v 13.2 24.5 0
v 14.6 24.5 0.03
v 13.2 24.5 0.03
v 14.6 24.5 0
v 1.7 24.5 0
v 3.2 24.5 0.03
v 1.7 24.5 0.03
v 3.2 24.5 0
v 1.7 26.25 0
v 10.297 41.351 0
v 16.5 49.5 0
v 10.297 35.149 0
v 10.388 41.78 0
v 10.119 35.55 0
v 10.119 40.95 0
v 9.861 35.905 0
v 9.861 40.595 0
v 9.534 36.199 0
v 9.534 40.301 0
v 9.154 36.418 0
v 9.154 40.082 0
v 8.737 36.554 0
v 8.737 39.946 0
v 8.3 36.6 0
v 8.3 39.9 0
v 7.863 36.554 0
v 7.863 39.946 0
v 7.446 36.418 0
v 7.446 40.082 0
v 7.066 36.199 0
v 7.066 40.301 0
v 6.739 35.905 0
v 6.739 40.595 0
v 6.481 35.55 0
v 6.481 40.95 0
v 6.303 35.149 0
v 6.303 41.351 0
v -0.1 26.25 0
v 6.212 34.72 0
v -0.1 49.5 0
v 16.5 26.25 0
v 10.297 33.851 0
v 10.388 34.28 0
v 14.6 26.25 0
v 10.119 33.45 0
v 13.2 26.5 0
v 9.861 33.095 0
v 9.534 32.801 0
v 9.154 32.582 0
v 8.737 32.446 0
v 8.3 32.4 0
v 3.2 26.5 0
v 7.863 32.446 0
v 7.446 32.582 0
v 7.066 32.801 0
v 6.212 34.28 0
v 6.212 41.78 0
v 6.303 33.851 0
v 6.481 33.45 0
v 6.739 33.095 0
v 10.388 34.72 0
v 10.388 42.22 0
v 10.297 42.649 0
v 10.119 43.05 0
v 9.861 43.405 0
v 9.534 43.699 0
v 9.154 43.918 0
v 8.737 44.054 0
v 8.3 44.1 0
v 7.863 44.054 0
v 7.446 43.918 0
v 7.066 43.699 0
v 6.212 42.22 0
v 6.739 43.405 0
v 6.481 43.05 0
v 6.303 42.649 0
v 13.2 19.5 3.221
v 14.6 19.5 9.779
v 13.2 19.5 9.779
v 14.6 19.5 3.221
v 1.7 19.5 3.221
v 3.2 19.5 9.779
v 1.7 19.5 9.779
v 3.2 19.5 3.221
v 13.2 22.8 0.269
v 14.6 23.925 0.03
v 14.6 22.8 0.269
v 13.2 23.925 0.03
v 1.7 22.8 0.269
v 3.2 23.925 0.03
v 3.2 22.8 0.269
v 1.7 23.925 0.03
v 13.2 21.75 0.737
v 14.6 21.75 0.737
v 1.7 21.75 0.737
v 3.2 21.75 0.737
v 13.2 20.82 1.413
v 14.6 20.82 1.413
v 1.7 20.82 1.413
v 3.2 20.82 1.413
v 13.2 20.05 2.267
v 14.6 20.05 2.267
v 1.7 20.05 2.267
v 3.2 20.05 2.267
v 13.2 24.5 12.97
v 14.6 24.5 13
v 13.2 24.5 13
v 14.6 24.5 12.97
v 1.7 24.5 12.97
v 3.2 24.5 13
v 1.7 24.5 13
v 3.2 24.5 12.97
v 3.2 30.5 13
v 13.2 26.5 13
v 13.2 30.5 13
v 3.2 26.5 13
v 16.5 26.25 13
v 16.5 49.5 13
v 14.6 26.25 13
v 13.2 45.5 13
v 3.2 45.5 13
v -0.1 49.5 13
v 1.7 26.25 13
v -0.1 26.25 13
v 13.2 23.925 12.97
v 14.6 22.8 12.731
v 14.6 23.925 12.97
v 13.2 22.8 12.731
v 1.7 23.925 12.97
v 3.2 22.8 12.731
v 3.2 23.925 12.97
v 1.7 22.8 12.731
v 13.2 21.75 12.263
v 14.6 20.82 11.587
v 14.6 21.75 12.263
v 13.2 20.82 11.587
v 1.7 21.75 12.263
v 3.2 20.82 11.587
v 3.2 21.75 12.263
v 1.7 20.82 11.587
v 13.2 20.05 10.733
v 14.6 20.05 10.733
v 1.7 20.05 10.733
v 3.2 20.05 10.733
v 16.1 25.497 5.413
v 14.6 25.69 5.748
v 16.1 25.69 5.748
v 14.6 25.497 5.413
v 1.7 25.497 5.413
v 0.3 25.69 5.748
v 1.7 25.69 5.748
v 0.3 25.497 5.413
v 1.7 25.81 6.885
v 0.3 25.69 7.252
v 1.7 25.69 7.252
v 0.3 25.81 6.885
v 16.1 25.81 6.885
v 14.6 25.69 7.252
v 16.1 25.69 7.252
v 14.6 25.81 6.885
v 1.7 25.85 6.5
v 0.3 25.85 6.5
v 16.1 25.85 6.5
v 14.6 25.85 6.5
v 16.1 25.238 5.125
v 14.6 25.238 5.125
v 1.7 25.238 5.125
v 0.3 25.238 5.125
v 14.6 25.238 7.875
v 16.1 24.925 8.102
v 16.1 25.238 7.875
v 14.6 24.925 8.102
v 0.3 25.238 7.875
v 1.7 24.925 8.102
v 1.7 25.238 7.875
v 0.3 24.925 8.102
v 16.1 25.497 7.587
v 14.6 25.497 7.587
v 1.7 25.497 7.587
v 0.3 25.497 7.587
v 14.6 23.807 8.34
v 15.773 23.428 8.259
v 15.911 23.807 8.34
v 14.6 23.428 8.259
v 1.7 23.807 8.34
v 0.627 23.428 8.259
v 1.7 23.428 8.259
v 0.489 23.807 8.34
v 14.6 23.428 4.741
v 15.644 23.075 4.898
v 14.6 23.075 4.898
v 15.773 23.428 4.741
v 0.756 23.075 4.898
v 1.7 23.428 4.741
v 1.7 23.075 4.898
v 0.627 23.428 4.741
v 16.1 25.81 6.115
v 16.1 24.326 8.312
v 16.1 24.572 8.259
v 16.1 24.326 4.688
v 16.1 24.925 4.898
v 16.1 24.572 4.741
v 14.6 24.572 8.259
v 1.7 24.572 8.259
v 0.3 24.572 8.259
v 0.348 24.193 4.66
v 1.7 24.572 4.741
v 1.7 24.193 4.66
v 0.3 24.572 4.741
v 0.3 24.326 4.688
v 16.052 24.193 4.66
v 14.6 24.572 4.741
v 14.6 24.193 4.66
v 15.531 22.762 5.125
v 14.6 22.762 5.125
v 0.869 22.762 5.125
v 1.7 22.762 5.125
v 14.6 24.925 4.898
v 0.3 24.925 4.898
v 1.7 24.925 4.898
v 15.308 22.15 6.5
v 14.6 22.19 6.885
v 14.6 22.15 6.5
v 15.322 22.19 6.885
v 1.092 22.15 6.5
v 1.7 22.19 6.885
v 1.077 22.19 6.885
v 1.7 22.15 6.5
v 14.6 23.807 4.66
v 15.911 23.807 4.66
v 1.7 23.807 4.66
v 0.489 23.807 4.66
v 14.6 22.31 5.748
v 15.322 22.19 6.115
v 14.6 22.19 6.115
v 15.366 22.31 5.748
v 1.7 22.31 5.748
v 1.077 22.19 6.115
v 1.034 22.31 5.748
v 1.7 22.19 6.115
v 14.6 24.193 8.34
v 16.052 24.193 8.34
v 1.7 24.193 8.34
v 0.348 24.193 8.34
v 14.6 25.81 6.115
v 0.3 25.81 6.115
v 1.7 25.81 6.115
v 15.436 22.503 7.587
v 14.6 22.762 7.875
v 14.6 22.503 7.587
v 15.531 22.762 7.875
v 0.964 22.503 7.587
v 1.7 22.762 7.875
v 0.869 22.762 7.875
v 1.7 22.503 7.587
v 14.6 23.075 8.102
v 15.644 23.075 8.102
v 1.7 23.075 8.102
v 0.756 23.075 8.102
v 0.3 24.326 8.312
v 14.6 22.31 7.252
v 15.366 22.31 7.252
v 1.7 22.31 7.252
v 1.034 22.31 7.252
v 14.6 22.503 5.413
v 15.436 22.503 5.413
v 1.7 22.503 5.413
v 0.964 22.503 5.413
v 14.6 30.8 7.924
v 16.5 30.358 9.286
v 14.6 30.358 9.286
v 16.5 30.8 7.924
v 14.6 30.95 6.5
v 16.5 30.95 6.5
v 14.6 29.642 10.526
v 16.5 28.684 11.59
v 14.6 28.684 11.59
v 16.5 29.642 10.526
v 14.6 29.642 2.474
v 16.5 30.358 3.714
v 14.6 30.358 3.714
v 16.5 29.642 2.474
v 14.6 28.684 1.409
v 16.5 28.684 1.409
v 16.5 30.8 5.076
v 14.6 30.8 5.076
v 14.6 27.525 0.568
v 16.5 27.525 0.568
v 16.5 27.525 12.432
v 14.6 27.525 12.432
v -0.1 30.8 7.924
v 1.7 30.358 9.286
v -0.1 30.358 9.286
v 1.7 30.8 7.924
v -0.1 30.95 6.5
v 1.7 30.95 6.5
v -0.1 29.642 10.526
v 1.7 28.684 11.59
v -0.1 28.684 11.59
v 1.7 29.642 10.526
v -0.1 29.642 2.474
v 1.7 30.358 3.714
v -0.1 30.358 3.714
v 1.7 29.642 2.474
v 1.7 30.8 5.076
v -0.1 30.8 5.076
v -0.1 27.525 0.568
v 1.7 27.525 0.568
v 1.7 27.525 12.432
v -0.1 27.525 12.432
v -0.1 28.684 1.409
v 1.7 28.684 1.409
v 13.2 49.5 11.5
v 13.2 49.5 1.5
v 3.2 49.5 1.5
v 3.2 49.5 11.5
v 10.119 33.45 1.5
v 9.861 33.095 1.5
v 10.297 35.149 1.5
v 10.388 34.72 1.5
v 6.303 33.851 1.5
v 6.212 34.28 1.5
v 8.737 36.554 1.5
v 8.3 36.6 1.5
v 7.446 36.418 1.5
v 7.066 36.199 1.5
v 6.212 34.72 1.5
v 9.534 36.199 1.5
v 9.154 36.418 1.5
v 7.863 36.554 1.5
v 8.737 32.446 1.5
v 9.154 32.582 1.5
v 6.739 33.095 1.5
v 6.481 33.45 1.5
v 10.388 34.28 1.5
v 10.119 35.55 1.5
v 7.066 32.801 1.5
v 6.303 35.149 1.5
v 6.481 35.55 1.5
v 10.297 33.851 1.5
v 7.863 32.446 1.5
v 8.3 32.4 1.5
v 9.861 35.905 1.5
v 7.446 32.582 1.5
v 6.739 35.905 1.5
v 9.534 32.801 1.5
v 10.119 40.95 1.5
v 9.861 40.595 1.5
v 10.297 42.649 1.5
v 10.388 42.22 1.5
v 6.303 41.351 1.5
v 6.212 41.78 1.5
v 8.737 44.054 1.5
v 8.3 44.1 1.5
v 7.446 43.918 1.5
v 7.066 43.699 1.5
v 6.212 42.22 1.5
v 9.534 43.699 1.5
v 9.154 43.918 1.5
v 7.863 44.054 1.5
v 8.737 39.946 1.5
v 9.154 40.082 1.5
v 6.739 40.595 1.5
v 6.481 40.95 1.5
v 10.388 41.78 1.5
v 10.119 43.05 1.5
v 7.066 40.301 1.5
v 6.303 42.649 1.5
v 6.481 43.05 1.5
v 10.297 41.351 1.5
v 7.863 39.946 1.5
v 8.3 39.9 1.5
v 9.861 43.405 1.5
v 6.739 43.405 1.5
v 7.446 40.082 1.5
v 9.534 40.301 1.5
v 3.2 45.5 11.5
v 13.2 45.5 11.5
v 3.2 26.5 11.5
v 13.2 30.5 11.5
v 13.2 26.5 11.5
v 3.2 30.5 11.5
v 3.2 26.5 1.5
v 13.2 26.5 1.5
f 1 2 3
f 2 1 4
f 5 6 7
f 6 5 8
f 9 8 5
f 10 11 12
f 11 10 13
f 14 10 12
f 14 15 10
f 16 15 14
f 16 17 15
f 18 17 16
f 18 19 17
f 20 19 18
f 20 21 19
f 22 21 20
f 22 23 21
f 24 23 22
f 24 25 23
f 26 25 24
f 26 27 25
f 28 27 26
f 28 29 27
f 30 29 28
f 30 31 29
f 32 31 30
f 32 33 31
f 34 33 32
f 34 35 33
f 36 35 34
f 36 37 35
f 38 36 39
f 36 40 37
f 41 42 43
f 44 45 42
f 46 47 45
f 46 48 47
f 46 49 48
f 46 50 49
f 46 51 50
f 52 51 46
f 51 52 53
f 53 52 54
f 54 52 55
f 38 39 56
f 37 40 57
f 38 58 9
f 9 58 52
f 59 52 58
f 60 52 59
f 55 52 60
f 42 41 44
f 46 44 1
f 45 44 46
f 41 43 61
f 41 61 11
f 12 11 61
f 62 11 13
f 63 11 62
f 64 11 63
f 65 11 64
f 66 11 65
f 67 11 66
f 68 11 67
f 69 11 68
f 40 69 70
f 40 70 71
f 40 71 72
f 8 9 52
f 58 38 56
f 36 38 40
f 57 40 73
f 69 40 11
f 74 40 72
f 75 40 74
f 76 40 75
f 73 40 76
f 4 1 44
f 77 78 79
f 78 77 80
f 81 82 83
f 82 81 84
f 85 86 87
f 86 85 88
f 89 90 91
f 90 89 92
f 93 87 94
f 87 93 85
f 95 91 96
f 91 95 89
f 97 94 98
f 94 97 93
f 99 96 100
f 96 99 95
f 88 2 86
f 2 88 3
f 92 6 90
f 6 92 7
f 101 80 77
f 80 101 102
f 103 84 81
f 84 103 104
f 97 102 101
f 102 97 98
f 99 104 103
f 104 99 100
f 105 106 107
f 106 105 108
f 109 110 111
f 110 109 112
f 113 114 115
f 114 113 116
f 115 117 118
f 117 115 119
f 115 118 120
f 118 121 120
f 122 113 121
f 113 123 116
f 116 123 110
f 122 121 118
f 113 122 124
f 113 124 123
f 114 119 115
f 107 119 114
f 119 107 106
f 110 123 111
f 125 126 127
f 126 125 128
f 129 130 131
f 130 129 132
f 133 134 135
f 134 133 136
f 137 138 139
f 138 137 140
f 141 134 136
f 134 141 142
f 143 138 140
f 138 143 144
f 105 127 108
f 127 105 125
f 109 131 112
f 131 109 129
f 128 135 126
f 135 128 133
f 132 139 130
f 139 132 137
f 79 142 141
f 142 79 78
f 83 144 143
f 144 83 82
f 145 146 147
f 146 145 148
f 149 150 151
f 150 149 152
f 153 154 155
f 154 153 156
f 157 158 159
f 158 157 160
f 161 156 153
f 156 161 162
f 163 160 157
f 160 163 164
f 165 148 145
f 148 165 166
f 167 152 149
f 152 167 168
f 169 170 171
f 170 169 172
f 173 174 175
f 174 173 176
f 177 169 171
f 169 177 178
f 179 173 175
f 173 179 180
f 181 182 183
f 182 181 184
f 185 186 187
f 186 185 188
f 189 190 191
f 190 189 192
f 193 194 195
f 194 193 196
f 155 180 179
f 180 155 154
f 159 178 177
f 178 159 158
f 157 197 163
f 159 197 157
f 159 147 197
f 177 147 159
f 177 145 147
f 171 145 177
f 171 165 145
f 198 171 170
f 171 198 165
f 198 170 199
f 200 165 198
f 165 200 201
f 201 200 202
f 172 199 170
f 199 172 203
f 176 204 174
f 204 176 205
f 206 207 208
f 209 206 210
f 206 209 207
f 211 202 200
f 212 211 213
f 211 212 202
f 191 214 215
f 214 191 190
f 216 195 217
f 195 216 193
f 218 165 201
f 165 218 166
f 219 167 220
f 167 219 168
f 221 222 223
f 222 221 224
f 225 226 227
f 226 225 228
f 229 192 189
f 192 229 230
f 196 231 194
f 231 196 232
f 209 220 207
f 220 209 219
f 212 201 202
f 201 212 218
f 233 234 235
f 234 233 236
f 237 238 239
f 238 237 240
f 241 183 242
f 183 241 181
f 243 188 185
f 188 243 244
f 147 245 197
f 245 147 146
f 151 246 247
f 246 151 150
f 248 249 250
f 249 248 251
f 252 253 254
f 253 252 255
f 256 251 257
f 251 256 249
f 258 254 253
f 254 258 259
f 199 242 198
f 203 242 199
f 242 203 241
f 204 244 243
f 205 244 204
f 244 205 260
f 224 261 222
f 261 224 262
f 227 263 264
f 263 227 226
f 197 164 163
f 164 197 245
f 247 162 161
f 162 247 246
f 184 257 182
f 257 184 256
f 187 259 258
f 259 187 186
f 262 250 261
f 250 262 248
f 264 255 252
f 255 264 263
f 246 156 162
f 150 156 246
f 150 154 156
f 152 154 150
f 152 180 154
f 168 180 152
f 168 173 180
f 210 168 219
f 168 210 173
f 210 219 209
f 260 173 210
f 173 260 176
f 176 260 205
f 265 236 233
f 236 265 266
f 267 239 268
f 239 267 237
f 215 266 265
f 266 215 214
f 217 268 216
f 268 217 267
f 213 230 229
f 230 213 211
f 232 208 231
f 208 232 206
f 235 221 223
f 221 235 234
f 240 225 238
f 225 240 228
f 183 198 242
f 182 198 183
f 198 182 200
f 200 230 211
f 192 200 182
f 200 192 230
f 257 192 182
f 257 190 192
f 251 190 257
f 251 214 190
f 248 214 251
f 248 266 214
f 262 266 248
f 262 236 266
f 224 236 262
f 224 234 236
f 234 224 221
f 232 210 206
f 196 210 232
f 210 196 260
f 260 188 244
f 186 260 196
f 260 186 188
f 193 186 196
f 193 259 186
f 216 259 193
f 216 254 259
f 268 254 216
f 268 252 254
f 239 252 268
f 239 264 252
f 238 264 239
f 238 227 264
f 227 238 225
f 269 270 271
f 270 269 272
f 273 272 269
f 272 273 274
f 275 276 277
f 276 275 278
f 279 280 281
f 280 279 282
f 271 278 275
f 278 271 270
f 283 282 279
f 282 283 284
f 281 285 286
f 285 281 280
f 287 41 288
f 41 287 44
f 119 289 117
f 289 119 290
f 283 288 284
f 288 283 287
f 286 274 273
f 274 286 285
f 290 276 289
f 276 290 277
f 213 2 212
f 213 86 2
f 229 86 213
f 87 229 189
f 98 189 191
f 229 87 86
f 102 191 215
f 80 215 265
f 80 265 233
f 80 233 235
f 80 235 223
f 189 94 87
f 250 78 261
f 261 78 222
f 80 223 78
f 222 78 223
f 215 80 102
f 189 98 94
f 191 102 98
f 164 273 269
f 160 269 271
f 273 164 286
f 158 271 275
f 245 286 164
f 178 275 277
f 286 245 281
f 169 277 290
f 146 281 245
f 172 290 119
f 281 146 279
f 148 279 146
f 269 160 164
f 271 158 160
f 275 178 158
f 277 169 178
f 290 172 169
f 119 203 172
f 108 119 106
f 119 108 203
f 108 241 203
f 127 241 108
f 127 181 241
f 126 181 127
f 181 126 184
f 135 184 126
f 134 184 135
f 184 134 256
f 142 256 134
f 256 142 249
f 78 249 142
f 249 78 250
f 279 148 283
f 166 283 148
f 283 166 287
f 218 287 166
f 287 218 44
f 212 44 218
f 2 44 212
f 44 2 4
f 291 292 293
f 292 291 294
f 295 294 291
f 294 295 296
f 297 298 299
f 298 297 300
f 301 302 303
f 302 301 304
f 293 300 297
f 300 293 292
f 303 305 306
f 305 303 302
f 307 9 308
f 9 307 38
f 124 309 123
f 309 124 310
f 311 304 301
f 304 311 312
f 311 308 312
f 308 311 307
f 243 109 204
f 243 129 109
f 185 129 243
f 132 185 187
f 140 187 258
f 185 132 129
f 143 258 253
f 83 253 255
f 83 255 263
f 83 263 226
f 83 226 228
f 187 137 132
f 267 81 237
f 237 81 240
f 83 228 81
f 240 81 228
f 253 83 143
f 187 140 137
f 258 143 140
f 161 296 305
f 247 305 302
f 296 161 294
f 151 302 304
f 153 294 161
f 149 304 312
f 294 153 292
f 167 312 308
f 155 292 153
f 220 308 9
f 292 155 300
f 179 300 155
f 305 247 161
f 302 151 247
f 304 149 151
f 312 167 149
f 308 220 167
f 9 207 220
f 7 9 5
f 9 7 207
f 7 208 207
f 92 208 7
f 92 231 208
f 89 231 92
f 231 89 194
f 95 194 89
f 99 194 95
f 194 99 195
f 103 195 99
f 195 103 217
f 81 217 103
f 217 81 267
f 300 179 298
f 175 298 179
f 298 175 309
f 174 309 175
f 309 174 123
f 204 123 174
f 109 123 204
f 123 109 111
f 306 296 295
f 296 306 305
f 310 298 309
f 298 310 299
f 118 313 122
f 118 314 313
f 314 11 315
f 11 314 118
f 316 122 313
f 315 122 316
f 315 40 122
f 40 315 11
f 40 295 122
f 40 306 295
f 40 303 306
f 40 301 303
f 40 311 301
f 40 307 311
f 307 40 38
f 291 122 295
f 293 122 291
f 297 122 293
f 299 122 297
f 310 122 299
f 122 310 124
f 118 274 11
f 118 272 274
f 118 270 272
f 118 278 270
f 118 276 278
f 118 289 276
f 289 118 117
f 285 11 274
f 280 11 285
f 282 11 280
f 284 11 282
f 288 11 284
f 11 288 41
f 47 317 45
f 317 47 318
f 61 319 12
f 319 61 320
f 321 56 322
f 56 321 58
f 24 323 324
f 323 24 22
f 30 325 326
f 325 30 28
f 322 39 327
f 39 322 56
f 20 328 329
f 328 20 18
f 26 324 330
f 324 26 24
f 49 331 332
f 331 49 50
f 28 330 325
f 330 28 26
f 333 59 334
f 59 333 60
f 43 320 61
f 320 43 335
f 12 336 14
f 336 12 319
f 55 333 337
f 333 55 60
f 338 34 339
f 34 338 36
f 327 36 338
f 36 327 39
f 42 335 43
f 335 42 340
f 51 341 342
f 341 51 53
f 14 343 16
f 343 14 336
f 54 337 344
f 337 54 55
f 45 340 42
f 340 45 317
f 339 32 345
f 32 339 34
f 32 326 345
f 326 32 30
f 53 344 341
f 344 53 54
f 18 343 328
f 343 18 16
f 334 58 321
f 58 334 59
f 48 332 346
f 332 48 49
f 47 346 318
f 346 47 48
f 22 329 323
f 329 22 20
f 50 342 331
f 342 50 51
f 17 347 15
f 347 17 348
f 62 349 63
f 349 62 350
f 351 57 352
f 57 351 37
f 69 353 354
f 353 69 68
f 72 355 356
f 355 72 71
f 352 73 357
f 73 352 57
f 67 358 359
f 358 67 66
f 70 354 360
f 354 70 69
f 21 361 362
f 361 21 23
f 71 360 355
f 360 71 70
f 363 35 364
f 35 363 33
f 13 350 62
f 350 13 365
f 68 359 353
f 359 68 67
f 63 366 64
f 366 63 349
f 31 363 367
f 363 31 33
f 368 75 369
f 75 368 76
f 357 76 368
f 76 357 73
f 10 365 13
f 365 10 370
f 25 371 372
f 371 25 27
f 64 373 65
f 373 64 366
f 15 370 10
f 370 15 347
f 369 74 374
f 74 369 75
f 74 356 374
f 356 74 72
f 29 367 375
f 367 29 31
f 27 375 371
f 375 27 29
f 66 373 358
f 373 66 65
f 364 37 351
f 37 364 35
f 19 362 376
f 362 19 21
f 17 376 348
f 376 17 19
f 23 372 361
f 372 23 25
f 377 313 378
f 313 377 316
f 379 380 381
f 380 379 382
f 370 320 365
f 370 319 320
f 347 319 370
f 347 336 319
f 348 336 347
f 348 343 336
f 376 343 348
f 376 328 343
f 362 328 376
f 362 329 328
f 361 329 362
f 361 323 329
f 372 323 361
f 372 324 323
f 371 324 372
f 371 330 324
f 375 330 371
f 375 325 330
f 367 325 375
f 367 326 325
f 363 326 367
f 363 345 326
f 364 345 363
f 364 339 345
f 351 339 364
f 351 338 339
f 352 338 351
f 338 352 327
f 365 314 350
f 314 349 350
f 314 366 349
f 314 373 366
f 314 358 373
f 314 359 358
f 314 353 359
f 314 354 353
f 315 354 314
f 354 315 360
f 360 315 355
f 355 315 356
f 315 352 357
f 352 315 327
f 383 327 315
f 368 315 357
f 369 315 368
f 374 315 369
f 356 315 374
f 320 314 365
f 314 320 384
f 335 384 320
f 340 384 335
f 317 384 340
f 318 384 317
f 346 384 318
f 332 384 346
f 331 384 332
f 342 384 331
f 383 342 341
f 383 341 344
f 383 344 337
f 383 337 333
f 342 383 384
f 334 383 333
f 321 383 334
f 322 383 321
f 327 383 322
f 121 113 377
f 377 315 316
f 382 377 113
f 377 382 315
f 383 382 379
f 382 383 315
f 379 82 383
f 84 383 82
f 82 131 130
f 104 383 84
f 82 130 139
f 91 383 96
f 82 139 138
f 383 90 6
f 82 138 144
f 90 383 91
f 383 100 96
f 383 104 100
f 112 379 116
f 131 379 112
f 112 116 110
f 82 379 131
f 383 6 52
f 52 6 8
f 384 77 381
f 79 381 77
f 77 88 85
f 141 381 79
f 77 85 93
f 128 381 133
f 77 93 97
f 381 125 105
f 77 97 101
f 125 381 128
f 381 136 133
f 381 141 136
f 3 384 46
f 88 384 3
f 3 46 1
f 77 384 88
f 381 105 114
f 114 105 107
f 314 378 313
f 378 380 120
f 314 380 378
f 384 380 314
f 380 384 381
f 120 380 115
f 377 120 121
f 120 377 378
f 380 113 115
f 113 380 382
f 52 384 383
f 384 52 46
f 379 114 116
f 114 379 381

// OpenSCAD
//
// PARAMETRIC Cable Chain v0.5
// Zerginator 10/2015
//



use <text_on.scad>

$fn = 30;

ChainDef = [[1,0]];
//ChainDef = [[1,0],[1,0],[1,0],[1,0],[1,0],[1,0],[1,0],[1,0],[1,0],[1,0],[1,30],[1,30],[1,30],[1,30],[1,30],[1,30],[1,0],[1,0],[1,0],[1,0],[1,0],[1,0],[1,0]];


// ===============================================================================
// Type
Type        =       2;         // 1: +45° Bewegbar, 2: +-45°
Round       =       1;         // Runder oder eckiger Typ

// ===============================================================================
// box parameters
width       =       16.6;       // width of the chainlink (Standard: 16.6)
height      =       13;         // height of the chainlink (Standard: 13)
length      =       30;         // length of the chainlink  (Standard: 25, min 30 für Eckig)


// ===============================================================================
// === OUTPUT


// ===Check Consistency of Values
if((!Type && !Start && !End) || ((Round != 1) && (length/height<2.2)))
{
    // === IDIOT BOX (if imposible values were selected)
    cube([30,30,30]);
    color("red")
    text_on_cube("Doh!!", locn_vec=[15,15,15], cube_size=30, face="top", size=5, center=true); 
    color("red")
    text_on_cube("Error!!", locn_vec=[15,15,15], cube_size=30, face="front", size=5, center=true);   
    color("red")
    text_on_cube("Fehler!!", locn_vec=[15,15,15], cube_size=30, face="right", size=4, center=true);   
    color("red")
    text_on_cube("Défaut!!", locn_vec=[15,15,15], cube_size=30, face="left", size=4, center=true);   
    color("red")
    text_on_cube("ошибка!!", locn_vec=[15,15,15], cube_size=30, face="back", size=4, center=true); 
    color("red")
    text_on_cube("错误!!", locn_vec=[15,15,15], cube_size=30, face="bottom", size=4, center=true);     
}

else
    
// === Put the Chainlinks together to a single Cablechain
{
    if( Round == 1)
    {
        vec = select2(ChainDef,[1]);
        for (i = [1:len(ChainDef)]) { 
            c = sumv(vec,i-1,0);
            a = coslength(i,ChainDef,vec); 
            b = sinlength(i,ChainDef,vec); 

            pcsOChain(width, length, height, 0, a, b, c);
        }
    }

}


// ===============================================================================
// === Mathematikfunktionen
function sumv(v,i,s=0) = (i==s ? v[i] : v[i] + sumv(v,i-1,s));
function select(source_vector,select_vector)=
   [ for (i = [0 : len(select_vector) - 1]) source_vector[select_vector[i]] ];
function select2(source_vector,select_vector)=
   [ for (i = [0 : len(source_vector) - 1]) source_vector[i][1] ];
function coslength(j,ChainDef,vec,s=1)=
   (j==s ? (((height/13)*(length-10.5)) * cos(sumv(vec,j-1,0)-ChainDef[j-1][1])) : (((height/13)*(length-10.5))) * cos(sumv(vec,j-1,0)-ChainDef[j-1][1]) + coslength(j-1,ChainDef,vec));  
   
function sinlength(j,ChainDef,vec,s=1)=
   (j==s ? ((height/13)*(length-10.5))*(sin(sumv(vec,j-1,0)-ChainDef[j-1][1])) : ((height/13)*(length-10.5))*(sin(sumv(vec,j-1,0)-ChainDef[j-1][1])) + sinlength(j-1,ChainDef,vec));


// ===============================================================================
// === Generate Chain module
module pcsOChain(width, length, height, posx,posy,posz, ChainAngle) 
    {    
        translate([posx,posy,posz])
        translate([0,(height/13)*4.5,(height/13)*6.5])  
        rotate(a=ChainAngle, v=[1,0,0])
        translate([0,-(height/13)*4.5,-(height/13)*6.5])  
        if (Round != 1)
        {
            pcsMiddlePart(width, length, height);
            pcsOFront(width, length, height);
            translate([0,length - height - overlapping,0]) pcsOBack(width, length, height);
        }
        else
        {
            CableChain(width, length, height);
        }
    }





// ===============================================================================
// ===============================================================================
// ===============================================================================




// ===============================================================================
// === Cable Chain (Rund)

module CableChain(width, length, height)
{
translate([width,0,0])
rotate(a=90, v=[0,0,1])
difference()
    {
    union()
        {
        difference()
            {
                translate([0,0.1,0])
                    rotate(a=0, v=[0,0,1])
                        cube([length,width,(height/13)*13]);

                translate([length / 8 * 4, width / 2, 0]) cylinder(d=4.2,h=height);
                translate([length / 8 * 6, width / 2, 0]) cylinder(d=4.2,h=height);

                union()
                    {
                    union()
                        {
                        if (Type == 1)
                        {
                            translate([(height/13)*-0.8,-1,(height/13)*6.4])
                                rotate(a=35, v=[0,-1,0])
                                    cube([(height/13)*9,width+1.5,(height/13)*5]);
                            translate([(height/13)*3.2,-1,(height/13)*9.9])
                                rotate(a=0, v=[0,0,1])
                                    cube([(height/13)*7,width+1.5,(height/13)*4]);
                        }
                         translate([(height/13)*4.6,2,(height/13)*6.5])
                            rotate(a=90, v=[1,0,0])   
                                cylinder(r=(height/13)*6.85, h=3);
                        
                        //FEMALE
                         /*translate([(height/13)*(length-6),width+0.5,(height/13)*6.5])
                                rotate(a=90, v=[1,0,0])   
                                    cylinder(r=(height/13)*2.45, h=width+0.9);*/
                         translate([(height/13)*4.6,width+1.3,(height/13)*6.5])
                            rotate(a=90, v=[1,0,0])
                                cylinder(r=(height/13)*6.85, h=3);
                        
                        }
                    difference()
                        {
                        translate([0,-0.5,0])
                            rotate(a=0, v=[0,0,1])
                                cube([(height/13)*5,width+0.9,(height/13)*4]);
                        {
                        translate([(height/13)*5,width+0.4,(height/13)*5.5])
                            rotate(a=90, v=[1,0,0])   
                                cylinder(r=(height/13)*5.5, h=width+0.9);
                            }
                        }
                    if (Type == 2)
                        {
                        difference()
                            {
                            translate([0,-0.5,9])
                                rotate(a=0, v=[0,0,1])
                                    cube([(height/13)*5,width+0.9,(height/13)*4]);
                            {
                            translate([(height/13)*5,width+0.4,(height/13)*7.5])
                                rotate(a=90, v=[1,0,0])   
                                    cylinder(r=(height/13)*5.5, h=width+0.9);
                                }
                            }
                        }
                    }
                }
                
                // MALE
                difference()
                {
                    translate([(height/13)*4.5,width-0.3,(height/13)*6.5])
                        rotate(a=90, v=[1,0,0])   
                            cylinder(r=(height/13)*1.85, h=width-0.8); 
                    translate([(height/13)-1,-2,(height/13)*4.5])
                        rotate(a=-20, v=[0,0,1])
                            cube([4,4,4]);
                    translate([(height/13)-1,18.8,(height/13)*4.5]) //2.5
                            rotate(a=-70, v=[0,0,1]) //-15
                                cube([4,4,4]);
                }
        } 
        
    union()
        {
            translate([(height/13)*-1,3.4,1.5])
                rotate(a=0, v=[0,0,1])
                    cube([(height/13)*(length+1),width-6.6,height-3]);
            translate([(length / 2) - 4,3.4,(height/13)*3.5])
                rotate(a=0, v=[0,0,1])
                    cube([length / 2,width-6.6,(height/13)*10]);    
            
            if (Type == 1)
            {
                translate([(height/13)*-1,3.4,(height/13)*-1.5])
                    rotate(a=0, v=[0,0,1])
                        cube([(height/13)*8,width-6.6,(height/13)*13]);
                translate([(height/13)*(length-12.5),1.6,(height/13)*9.7])
                    rotate(a=-60, v=[1,0,0])
                        cube([(height/13)*11,3,3]);  
                translate([(height/13)*(length-12.5),width-1.4,(height/13)*9.7])
                    rotate(a=150, v=[1,0,0])
                        cube([(height/13)*11,3,3]);
                translate([(height/13)*(length-12.5),1.6,1.5])
                    rotate(a=0, v=[0,0,1])
                        cube([(height/13)*6,width-3,((height/13)*8.2)+((height/13)*1.5-1.5)]);
                translate([(height/13)*(length-9.65),1.6,0])
                    rotate(a=0, v=[0,0,1])
                        cube([(height/13)*10,width-3,(height/13)*9.7]);
            }
            
            if (Type == 2)
            {
            translate([(height/13)*-1,3.4,(height/13)*-1.5])
                    rotate(a=0, v=[0,0,1])
                        cube([(height/13)*8,width-6.6,(height/13)*16]);
            /*translate([(height/13)*(length-12.5),1.6,1.5])
                    rotate(a=0, v=[0,0,1])
                        cube([(height/13)*6,width-3,height-3]);*/

            /*translate([(height/13)*(length-9.65),1.6,0])
                rotate(a=0, v=[0,0,1])
                    cube([(height/13)*10,width-3,(height/13)*13]);*/
            }
        }
    }    
    
} // END CABLE CHAIN RUND
